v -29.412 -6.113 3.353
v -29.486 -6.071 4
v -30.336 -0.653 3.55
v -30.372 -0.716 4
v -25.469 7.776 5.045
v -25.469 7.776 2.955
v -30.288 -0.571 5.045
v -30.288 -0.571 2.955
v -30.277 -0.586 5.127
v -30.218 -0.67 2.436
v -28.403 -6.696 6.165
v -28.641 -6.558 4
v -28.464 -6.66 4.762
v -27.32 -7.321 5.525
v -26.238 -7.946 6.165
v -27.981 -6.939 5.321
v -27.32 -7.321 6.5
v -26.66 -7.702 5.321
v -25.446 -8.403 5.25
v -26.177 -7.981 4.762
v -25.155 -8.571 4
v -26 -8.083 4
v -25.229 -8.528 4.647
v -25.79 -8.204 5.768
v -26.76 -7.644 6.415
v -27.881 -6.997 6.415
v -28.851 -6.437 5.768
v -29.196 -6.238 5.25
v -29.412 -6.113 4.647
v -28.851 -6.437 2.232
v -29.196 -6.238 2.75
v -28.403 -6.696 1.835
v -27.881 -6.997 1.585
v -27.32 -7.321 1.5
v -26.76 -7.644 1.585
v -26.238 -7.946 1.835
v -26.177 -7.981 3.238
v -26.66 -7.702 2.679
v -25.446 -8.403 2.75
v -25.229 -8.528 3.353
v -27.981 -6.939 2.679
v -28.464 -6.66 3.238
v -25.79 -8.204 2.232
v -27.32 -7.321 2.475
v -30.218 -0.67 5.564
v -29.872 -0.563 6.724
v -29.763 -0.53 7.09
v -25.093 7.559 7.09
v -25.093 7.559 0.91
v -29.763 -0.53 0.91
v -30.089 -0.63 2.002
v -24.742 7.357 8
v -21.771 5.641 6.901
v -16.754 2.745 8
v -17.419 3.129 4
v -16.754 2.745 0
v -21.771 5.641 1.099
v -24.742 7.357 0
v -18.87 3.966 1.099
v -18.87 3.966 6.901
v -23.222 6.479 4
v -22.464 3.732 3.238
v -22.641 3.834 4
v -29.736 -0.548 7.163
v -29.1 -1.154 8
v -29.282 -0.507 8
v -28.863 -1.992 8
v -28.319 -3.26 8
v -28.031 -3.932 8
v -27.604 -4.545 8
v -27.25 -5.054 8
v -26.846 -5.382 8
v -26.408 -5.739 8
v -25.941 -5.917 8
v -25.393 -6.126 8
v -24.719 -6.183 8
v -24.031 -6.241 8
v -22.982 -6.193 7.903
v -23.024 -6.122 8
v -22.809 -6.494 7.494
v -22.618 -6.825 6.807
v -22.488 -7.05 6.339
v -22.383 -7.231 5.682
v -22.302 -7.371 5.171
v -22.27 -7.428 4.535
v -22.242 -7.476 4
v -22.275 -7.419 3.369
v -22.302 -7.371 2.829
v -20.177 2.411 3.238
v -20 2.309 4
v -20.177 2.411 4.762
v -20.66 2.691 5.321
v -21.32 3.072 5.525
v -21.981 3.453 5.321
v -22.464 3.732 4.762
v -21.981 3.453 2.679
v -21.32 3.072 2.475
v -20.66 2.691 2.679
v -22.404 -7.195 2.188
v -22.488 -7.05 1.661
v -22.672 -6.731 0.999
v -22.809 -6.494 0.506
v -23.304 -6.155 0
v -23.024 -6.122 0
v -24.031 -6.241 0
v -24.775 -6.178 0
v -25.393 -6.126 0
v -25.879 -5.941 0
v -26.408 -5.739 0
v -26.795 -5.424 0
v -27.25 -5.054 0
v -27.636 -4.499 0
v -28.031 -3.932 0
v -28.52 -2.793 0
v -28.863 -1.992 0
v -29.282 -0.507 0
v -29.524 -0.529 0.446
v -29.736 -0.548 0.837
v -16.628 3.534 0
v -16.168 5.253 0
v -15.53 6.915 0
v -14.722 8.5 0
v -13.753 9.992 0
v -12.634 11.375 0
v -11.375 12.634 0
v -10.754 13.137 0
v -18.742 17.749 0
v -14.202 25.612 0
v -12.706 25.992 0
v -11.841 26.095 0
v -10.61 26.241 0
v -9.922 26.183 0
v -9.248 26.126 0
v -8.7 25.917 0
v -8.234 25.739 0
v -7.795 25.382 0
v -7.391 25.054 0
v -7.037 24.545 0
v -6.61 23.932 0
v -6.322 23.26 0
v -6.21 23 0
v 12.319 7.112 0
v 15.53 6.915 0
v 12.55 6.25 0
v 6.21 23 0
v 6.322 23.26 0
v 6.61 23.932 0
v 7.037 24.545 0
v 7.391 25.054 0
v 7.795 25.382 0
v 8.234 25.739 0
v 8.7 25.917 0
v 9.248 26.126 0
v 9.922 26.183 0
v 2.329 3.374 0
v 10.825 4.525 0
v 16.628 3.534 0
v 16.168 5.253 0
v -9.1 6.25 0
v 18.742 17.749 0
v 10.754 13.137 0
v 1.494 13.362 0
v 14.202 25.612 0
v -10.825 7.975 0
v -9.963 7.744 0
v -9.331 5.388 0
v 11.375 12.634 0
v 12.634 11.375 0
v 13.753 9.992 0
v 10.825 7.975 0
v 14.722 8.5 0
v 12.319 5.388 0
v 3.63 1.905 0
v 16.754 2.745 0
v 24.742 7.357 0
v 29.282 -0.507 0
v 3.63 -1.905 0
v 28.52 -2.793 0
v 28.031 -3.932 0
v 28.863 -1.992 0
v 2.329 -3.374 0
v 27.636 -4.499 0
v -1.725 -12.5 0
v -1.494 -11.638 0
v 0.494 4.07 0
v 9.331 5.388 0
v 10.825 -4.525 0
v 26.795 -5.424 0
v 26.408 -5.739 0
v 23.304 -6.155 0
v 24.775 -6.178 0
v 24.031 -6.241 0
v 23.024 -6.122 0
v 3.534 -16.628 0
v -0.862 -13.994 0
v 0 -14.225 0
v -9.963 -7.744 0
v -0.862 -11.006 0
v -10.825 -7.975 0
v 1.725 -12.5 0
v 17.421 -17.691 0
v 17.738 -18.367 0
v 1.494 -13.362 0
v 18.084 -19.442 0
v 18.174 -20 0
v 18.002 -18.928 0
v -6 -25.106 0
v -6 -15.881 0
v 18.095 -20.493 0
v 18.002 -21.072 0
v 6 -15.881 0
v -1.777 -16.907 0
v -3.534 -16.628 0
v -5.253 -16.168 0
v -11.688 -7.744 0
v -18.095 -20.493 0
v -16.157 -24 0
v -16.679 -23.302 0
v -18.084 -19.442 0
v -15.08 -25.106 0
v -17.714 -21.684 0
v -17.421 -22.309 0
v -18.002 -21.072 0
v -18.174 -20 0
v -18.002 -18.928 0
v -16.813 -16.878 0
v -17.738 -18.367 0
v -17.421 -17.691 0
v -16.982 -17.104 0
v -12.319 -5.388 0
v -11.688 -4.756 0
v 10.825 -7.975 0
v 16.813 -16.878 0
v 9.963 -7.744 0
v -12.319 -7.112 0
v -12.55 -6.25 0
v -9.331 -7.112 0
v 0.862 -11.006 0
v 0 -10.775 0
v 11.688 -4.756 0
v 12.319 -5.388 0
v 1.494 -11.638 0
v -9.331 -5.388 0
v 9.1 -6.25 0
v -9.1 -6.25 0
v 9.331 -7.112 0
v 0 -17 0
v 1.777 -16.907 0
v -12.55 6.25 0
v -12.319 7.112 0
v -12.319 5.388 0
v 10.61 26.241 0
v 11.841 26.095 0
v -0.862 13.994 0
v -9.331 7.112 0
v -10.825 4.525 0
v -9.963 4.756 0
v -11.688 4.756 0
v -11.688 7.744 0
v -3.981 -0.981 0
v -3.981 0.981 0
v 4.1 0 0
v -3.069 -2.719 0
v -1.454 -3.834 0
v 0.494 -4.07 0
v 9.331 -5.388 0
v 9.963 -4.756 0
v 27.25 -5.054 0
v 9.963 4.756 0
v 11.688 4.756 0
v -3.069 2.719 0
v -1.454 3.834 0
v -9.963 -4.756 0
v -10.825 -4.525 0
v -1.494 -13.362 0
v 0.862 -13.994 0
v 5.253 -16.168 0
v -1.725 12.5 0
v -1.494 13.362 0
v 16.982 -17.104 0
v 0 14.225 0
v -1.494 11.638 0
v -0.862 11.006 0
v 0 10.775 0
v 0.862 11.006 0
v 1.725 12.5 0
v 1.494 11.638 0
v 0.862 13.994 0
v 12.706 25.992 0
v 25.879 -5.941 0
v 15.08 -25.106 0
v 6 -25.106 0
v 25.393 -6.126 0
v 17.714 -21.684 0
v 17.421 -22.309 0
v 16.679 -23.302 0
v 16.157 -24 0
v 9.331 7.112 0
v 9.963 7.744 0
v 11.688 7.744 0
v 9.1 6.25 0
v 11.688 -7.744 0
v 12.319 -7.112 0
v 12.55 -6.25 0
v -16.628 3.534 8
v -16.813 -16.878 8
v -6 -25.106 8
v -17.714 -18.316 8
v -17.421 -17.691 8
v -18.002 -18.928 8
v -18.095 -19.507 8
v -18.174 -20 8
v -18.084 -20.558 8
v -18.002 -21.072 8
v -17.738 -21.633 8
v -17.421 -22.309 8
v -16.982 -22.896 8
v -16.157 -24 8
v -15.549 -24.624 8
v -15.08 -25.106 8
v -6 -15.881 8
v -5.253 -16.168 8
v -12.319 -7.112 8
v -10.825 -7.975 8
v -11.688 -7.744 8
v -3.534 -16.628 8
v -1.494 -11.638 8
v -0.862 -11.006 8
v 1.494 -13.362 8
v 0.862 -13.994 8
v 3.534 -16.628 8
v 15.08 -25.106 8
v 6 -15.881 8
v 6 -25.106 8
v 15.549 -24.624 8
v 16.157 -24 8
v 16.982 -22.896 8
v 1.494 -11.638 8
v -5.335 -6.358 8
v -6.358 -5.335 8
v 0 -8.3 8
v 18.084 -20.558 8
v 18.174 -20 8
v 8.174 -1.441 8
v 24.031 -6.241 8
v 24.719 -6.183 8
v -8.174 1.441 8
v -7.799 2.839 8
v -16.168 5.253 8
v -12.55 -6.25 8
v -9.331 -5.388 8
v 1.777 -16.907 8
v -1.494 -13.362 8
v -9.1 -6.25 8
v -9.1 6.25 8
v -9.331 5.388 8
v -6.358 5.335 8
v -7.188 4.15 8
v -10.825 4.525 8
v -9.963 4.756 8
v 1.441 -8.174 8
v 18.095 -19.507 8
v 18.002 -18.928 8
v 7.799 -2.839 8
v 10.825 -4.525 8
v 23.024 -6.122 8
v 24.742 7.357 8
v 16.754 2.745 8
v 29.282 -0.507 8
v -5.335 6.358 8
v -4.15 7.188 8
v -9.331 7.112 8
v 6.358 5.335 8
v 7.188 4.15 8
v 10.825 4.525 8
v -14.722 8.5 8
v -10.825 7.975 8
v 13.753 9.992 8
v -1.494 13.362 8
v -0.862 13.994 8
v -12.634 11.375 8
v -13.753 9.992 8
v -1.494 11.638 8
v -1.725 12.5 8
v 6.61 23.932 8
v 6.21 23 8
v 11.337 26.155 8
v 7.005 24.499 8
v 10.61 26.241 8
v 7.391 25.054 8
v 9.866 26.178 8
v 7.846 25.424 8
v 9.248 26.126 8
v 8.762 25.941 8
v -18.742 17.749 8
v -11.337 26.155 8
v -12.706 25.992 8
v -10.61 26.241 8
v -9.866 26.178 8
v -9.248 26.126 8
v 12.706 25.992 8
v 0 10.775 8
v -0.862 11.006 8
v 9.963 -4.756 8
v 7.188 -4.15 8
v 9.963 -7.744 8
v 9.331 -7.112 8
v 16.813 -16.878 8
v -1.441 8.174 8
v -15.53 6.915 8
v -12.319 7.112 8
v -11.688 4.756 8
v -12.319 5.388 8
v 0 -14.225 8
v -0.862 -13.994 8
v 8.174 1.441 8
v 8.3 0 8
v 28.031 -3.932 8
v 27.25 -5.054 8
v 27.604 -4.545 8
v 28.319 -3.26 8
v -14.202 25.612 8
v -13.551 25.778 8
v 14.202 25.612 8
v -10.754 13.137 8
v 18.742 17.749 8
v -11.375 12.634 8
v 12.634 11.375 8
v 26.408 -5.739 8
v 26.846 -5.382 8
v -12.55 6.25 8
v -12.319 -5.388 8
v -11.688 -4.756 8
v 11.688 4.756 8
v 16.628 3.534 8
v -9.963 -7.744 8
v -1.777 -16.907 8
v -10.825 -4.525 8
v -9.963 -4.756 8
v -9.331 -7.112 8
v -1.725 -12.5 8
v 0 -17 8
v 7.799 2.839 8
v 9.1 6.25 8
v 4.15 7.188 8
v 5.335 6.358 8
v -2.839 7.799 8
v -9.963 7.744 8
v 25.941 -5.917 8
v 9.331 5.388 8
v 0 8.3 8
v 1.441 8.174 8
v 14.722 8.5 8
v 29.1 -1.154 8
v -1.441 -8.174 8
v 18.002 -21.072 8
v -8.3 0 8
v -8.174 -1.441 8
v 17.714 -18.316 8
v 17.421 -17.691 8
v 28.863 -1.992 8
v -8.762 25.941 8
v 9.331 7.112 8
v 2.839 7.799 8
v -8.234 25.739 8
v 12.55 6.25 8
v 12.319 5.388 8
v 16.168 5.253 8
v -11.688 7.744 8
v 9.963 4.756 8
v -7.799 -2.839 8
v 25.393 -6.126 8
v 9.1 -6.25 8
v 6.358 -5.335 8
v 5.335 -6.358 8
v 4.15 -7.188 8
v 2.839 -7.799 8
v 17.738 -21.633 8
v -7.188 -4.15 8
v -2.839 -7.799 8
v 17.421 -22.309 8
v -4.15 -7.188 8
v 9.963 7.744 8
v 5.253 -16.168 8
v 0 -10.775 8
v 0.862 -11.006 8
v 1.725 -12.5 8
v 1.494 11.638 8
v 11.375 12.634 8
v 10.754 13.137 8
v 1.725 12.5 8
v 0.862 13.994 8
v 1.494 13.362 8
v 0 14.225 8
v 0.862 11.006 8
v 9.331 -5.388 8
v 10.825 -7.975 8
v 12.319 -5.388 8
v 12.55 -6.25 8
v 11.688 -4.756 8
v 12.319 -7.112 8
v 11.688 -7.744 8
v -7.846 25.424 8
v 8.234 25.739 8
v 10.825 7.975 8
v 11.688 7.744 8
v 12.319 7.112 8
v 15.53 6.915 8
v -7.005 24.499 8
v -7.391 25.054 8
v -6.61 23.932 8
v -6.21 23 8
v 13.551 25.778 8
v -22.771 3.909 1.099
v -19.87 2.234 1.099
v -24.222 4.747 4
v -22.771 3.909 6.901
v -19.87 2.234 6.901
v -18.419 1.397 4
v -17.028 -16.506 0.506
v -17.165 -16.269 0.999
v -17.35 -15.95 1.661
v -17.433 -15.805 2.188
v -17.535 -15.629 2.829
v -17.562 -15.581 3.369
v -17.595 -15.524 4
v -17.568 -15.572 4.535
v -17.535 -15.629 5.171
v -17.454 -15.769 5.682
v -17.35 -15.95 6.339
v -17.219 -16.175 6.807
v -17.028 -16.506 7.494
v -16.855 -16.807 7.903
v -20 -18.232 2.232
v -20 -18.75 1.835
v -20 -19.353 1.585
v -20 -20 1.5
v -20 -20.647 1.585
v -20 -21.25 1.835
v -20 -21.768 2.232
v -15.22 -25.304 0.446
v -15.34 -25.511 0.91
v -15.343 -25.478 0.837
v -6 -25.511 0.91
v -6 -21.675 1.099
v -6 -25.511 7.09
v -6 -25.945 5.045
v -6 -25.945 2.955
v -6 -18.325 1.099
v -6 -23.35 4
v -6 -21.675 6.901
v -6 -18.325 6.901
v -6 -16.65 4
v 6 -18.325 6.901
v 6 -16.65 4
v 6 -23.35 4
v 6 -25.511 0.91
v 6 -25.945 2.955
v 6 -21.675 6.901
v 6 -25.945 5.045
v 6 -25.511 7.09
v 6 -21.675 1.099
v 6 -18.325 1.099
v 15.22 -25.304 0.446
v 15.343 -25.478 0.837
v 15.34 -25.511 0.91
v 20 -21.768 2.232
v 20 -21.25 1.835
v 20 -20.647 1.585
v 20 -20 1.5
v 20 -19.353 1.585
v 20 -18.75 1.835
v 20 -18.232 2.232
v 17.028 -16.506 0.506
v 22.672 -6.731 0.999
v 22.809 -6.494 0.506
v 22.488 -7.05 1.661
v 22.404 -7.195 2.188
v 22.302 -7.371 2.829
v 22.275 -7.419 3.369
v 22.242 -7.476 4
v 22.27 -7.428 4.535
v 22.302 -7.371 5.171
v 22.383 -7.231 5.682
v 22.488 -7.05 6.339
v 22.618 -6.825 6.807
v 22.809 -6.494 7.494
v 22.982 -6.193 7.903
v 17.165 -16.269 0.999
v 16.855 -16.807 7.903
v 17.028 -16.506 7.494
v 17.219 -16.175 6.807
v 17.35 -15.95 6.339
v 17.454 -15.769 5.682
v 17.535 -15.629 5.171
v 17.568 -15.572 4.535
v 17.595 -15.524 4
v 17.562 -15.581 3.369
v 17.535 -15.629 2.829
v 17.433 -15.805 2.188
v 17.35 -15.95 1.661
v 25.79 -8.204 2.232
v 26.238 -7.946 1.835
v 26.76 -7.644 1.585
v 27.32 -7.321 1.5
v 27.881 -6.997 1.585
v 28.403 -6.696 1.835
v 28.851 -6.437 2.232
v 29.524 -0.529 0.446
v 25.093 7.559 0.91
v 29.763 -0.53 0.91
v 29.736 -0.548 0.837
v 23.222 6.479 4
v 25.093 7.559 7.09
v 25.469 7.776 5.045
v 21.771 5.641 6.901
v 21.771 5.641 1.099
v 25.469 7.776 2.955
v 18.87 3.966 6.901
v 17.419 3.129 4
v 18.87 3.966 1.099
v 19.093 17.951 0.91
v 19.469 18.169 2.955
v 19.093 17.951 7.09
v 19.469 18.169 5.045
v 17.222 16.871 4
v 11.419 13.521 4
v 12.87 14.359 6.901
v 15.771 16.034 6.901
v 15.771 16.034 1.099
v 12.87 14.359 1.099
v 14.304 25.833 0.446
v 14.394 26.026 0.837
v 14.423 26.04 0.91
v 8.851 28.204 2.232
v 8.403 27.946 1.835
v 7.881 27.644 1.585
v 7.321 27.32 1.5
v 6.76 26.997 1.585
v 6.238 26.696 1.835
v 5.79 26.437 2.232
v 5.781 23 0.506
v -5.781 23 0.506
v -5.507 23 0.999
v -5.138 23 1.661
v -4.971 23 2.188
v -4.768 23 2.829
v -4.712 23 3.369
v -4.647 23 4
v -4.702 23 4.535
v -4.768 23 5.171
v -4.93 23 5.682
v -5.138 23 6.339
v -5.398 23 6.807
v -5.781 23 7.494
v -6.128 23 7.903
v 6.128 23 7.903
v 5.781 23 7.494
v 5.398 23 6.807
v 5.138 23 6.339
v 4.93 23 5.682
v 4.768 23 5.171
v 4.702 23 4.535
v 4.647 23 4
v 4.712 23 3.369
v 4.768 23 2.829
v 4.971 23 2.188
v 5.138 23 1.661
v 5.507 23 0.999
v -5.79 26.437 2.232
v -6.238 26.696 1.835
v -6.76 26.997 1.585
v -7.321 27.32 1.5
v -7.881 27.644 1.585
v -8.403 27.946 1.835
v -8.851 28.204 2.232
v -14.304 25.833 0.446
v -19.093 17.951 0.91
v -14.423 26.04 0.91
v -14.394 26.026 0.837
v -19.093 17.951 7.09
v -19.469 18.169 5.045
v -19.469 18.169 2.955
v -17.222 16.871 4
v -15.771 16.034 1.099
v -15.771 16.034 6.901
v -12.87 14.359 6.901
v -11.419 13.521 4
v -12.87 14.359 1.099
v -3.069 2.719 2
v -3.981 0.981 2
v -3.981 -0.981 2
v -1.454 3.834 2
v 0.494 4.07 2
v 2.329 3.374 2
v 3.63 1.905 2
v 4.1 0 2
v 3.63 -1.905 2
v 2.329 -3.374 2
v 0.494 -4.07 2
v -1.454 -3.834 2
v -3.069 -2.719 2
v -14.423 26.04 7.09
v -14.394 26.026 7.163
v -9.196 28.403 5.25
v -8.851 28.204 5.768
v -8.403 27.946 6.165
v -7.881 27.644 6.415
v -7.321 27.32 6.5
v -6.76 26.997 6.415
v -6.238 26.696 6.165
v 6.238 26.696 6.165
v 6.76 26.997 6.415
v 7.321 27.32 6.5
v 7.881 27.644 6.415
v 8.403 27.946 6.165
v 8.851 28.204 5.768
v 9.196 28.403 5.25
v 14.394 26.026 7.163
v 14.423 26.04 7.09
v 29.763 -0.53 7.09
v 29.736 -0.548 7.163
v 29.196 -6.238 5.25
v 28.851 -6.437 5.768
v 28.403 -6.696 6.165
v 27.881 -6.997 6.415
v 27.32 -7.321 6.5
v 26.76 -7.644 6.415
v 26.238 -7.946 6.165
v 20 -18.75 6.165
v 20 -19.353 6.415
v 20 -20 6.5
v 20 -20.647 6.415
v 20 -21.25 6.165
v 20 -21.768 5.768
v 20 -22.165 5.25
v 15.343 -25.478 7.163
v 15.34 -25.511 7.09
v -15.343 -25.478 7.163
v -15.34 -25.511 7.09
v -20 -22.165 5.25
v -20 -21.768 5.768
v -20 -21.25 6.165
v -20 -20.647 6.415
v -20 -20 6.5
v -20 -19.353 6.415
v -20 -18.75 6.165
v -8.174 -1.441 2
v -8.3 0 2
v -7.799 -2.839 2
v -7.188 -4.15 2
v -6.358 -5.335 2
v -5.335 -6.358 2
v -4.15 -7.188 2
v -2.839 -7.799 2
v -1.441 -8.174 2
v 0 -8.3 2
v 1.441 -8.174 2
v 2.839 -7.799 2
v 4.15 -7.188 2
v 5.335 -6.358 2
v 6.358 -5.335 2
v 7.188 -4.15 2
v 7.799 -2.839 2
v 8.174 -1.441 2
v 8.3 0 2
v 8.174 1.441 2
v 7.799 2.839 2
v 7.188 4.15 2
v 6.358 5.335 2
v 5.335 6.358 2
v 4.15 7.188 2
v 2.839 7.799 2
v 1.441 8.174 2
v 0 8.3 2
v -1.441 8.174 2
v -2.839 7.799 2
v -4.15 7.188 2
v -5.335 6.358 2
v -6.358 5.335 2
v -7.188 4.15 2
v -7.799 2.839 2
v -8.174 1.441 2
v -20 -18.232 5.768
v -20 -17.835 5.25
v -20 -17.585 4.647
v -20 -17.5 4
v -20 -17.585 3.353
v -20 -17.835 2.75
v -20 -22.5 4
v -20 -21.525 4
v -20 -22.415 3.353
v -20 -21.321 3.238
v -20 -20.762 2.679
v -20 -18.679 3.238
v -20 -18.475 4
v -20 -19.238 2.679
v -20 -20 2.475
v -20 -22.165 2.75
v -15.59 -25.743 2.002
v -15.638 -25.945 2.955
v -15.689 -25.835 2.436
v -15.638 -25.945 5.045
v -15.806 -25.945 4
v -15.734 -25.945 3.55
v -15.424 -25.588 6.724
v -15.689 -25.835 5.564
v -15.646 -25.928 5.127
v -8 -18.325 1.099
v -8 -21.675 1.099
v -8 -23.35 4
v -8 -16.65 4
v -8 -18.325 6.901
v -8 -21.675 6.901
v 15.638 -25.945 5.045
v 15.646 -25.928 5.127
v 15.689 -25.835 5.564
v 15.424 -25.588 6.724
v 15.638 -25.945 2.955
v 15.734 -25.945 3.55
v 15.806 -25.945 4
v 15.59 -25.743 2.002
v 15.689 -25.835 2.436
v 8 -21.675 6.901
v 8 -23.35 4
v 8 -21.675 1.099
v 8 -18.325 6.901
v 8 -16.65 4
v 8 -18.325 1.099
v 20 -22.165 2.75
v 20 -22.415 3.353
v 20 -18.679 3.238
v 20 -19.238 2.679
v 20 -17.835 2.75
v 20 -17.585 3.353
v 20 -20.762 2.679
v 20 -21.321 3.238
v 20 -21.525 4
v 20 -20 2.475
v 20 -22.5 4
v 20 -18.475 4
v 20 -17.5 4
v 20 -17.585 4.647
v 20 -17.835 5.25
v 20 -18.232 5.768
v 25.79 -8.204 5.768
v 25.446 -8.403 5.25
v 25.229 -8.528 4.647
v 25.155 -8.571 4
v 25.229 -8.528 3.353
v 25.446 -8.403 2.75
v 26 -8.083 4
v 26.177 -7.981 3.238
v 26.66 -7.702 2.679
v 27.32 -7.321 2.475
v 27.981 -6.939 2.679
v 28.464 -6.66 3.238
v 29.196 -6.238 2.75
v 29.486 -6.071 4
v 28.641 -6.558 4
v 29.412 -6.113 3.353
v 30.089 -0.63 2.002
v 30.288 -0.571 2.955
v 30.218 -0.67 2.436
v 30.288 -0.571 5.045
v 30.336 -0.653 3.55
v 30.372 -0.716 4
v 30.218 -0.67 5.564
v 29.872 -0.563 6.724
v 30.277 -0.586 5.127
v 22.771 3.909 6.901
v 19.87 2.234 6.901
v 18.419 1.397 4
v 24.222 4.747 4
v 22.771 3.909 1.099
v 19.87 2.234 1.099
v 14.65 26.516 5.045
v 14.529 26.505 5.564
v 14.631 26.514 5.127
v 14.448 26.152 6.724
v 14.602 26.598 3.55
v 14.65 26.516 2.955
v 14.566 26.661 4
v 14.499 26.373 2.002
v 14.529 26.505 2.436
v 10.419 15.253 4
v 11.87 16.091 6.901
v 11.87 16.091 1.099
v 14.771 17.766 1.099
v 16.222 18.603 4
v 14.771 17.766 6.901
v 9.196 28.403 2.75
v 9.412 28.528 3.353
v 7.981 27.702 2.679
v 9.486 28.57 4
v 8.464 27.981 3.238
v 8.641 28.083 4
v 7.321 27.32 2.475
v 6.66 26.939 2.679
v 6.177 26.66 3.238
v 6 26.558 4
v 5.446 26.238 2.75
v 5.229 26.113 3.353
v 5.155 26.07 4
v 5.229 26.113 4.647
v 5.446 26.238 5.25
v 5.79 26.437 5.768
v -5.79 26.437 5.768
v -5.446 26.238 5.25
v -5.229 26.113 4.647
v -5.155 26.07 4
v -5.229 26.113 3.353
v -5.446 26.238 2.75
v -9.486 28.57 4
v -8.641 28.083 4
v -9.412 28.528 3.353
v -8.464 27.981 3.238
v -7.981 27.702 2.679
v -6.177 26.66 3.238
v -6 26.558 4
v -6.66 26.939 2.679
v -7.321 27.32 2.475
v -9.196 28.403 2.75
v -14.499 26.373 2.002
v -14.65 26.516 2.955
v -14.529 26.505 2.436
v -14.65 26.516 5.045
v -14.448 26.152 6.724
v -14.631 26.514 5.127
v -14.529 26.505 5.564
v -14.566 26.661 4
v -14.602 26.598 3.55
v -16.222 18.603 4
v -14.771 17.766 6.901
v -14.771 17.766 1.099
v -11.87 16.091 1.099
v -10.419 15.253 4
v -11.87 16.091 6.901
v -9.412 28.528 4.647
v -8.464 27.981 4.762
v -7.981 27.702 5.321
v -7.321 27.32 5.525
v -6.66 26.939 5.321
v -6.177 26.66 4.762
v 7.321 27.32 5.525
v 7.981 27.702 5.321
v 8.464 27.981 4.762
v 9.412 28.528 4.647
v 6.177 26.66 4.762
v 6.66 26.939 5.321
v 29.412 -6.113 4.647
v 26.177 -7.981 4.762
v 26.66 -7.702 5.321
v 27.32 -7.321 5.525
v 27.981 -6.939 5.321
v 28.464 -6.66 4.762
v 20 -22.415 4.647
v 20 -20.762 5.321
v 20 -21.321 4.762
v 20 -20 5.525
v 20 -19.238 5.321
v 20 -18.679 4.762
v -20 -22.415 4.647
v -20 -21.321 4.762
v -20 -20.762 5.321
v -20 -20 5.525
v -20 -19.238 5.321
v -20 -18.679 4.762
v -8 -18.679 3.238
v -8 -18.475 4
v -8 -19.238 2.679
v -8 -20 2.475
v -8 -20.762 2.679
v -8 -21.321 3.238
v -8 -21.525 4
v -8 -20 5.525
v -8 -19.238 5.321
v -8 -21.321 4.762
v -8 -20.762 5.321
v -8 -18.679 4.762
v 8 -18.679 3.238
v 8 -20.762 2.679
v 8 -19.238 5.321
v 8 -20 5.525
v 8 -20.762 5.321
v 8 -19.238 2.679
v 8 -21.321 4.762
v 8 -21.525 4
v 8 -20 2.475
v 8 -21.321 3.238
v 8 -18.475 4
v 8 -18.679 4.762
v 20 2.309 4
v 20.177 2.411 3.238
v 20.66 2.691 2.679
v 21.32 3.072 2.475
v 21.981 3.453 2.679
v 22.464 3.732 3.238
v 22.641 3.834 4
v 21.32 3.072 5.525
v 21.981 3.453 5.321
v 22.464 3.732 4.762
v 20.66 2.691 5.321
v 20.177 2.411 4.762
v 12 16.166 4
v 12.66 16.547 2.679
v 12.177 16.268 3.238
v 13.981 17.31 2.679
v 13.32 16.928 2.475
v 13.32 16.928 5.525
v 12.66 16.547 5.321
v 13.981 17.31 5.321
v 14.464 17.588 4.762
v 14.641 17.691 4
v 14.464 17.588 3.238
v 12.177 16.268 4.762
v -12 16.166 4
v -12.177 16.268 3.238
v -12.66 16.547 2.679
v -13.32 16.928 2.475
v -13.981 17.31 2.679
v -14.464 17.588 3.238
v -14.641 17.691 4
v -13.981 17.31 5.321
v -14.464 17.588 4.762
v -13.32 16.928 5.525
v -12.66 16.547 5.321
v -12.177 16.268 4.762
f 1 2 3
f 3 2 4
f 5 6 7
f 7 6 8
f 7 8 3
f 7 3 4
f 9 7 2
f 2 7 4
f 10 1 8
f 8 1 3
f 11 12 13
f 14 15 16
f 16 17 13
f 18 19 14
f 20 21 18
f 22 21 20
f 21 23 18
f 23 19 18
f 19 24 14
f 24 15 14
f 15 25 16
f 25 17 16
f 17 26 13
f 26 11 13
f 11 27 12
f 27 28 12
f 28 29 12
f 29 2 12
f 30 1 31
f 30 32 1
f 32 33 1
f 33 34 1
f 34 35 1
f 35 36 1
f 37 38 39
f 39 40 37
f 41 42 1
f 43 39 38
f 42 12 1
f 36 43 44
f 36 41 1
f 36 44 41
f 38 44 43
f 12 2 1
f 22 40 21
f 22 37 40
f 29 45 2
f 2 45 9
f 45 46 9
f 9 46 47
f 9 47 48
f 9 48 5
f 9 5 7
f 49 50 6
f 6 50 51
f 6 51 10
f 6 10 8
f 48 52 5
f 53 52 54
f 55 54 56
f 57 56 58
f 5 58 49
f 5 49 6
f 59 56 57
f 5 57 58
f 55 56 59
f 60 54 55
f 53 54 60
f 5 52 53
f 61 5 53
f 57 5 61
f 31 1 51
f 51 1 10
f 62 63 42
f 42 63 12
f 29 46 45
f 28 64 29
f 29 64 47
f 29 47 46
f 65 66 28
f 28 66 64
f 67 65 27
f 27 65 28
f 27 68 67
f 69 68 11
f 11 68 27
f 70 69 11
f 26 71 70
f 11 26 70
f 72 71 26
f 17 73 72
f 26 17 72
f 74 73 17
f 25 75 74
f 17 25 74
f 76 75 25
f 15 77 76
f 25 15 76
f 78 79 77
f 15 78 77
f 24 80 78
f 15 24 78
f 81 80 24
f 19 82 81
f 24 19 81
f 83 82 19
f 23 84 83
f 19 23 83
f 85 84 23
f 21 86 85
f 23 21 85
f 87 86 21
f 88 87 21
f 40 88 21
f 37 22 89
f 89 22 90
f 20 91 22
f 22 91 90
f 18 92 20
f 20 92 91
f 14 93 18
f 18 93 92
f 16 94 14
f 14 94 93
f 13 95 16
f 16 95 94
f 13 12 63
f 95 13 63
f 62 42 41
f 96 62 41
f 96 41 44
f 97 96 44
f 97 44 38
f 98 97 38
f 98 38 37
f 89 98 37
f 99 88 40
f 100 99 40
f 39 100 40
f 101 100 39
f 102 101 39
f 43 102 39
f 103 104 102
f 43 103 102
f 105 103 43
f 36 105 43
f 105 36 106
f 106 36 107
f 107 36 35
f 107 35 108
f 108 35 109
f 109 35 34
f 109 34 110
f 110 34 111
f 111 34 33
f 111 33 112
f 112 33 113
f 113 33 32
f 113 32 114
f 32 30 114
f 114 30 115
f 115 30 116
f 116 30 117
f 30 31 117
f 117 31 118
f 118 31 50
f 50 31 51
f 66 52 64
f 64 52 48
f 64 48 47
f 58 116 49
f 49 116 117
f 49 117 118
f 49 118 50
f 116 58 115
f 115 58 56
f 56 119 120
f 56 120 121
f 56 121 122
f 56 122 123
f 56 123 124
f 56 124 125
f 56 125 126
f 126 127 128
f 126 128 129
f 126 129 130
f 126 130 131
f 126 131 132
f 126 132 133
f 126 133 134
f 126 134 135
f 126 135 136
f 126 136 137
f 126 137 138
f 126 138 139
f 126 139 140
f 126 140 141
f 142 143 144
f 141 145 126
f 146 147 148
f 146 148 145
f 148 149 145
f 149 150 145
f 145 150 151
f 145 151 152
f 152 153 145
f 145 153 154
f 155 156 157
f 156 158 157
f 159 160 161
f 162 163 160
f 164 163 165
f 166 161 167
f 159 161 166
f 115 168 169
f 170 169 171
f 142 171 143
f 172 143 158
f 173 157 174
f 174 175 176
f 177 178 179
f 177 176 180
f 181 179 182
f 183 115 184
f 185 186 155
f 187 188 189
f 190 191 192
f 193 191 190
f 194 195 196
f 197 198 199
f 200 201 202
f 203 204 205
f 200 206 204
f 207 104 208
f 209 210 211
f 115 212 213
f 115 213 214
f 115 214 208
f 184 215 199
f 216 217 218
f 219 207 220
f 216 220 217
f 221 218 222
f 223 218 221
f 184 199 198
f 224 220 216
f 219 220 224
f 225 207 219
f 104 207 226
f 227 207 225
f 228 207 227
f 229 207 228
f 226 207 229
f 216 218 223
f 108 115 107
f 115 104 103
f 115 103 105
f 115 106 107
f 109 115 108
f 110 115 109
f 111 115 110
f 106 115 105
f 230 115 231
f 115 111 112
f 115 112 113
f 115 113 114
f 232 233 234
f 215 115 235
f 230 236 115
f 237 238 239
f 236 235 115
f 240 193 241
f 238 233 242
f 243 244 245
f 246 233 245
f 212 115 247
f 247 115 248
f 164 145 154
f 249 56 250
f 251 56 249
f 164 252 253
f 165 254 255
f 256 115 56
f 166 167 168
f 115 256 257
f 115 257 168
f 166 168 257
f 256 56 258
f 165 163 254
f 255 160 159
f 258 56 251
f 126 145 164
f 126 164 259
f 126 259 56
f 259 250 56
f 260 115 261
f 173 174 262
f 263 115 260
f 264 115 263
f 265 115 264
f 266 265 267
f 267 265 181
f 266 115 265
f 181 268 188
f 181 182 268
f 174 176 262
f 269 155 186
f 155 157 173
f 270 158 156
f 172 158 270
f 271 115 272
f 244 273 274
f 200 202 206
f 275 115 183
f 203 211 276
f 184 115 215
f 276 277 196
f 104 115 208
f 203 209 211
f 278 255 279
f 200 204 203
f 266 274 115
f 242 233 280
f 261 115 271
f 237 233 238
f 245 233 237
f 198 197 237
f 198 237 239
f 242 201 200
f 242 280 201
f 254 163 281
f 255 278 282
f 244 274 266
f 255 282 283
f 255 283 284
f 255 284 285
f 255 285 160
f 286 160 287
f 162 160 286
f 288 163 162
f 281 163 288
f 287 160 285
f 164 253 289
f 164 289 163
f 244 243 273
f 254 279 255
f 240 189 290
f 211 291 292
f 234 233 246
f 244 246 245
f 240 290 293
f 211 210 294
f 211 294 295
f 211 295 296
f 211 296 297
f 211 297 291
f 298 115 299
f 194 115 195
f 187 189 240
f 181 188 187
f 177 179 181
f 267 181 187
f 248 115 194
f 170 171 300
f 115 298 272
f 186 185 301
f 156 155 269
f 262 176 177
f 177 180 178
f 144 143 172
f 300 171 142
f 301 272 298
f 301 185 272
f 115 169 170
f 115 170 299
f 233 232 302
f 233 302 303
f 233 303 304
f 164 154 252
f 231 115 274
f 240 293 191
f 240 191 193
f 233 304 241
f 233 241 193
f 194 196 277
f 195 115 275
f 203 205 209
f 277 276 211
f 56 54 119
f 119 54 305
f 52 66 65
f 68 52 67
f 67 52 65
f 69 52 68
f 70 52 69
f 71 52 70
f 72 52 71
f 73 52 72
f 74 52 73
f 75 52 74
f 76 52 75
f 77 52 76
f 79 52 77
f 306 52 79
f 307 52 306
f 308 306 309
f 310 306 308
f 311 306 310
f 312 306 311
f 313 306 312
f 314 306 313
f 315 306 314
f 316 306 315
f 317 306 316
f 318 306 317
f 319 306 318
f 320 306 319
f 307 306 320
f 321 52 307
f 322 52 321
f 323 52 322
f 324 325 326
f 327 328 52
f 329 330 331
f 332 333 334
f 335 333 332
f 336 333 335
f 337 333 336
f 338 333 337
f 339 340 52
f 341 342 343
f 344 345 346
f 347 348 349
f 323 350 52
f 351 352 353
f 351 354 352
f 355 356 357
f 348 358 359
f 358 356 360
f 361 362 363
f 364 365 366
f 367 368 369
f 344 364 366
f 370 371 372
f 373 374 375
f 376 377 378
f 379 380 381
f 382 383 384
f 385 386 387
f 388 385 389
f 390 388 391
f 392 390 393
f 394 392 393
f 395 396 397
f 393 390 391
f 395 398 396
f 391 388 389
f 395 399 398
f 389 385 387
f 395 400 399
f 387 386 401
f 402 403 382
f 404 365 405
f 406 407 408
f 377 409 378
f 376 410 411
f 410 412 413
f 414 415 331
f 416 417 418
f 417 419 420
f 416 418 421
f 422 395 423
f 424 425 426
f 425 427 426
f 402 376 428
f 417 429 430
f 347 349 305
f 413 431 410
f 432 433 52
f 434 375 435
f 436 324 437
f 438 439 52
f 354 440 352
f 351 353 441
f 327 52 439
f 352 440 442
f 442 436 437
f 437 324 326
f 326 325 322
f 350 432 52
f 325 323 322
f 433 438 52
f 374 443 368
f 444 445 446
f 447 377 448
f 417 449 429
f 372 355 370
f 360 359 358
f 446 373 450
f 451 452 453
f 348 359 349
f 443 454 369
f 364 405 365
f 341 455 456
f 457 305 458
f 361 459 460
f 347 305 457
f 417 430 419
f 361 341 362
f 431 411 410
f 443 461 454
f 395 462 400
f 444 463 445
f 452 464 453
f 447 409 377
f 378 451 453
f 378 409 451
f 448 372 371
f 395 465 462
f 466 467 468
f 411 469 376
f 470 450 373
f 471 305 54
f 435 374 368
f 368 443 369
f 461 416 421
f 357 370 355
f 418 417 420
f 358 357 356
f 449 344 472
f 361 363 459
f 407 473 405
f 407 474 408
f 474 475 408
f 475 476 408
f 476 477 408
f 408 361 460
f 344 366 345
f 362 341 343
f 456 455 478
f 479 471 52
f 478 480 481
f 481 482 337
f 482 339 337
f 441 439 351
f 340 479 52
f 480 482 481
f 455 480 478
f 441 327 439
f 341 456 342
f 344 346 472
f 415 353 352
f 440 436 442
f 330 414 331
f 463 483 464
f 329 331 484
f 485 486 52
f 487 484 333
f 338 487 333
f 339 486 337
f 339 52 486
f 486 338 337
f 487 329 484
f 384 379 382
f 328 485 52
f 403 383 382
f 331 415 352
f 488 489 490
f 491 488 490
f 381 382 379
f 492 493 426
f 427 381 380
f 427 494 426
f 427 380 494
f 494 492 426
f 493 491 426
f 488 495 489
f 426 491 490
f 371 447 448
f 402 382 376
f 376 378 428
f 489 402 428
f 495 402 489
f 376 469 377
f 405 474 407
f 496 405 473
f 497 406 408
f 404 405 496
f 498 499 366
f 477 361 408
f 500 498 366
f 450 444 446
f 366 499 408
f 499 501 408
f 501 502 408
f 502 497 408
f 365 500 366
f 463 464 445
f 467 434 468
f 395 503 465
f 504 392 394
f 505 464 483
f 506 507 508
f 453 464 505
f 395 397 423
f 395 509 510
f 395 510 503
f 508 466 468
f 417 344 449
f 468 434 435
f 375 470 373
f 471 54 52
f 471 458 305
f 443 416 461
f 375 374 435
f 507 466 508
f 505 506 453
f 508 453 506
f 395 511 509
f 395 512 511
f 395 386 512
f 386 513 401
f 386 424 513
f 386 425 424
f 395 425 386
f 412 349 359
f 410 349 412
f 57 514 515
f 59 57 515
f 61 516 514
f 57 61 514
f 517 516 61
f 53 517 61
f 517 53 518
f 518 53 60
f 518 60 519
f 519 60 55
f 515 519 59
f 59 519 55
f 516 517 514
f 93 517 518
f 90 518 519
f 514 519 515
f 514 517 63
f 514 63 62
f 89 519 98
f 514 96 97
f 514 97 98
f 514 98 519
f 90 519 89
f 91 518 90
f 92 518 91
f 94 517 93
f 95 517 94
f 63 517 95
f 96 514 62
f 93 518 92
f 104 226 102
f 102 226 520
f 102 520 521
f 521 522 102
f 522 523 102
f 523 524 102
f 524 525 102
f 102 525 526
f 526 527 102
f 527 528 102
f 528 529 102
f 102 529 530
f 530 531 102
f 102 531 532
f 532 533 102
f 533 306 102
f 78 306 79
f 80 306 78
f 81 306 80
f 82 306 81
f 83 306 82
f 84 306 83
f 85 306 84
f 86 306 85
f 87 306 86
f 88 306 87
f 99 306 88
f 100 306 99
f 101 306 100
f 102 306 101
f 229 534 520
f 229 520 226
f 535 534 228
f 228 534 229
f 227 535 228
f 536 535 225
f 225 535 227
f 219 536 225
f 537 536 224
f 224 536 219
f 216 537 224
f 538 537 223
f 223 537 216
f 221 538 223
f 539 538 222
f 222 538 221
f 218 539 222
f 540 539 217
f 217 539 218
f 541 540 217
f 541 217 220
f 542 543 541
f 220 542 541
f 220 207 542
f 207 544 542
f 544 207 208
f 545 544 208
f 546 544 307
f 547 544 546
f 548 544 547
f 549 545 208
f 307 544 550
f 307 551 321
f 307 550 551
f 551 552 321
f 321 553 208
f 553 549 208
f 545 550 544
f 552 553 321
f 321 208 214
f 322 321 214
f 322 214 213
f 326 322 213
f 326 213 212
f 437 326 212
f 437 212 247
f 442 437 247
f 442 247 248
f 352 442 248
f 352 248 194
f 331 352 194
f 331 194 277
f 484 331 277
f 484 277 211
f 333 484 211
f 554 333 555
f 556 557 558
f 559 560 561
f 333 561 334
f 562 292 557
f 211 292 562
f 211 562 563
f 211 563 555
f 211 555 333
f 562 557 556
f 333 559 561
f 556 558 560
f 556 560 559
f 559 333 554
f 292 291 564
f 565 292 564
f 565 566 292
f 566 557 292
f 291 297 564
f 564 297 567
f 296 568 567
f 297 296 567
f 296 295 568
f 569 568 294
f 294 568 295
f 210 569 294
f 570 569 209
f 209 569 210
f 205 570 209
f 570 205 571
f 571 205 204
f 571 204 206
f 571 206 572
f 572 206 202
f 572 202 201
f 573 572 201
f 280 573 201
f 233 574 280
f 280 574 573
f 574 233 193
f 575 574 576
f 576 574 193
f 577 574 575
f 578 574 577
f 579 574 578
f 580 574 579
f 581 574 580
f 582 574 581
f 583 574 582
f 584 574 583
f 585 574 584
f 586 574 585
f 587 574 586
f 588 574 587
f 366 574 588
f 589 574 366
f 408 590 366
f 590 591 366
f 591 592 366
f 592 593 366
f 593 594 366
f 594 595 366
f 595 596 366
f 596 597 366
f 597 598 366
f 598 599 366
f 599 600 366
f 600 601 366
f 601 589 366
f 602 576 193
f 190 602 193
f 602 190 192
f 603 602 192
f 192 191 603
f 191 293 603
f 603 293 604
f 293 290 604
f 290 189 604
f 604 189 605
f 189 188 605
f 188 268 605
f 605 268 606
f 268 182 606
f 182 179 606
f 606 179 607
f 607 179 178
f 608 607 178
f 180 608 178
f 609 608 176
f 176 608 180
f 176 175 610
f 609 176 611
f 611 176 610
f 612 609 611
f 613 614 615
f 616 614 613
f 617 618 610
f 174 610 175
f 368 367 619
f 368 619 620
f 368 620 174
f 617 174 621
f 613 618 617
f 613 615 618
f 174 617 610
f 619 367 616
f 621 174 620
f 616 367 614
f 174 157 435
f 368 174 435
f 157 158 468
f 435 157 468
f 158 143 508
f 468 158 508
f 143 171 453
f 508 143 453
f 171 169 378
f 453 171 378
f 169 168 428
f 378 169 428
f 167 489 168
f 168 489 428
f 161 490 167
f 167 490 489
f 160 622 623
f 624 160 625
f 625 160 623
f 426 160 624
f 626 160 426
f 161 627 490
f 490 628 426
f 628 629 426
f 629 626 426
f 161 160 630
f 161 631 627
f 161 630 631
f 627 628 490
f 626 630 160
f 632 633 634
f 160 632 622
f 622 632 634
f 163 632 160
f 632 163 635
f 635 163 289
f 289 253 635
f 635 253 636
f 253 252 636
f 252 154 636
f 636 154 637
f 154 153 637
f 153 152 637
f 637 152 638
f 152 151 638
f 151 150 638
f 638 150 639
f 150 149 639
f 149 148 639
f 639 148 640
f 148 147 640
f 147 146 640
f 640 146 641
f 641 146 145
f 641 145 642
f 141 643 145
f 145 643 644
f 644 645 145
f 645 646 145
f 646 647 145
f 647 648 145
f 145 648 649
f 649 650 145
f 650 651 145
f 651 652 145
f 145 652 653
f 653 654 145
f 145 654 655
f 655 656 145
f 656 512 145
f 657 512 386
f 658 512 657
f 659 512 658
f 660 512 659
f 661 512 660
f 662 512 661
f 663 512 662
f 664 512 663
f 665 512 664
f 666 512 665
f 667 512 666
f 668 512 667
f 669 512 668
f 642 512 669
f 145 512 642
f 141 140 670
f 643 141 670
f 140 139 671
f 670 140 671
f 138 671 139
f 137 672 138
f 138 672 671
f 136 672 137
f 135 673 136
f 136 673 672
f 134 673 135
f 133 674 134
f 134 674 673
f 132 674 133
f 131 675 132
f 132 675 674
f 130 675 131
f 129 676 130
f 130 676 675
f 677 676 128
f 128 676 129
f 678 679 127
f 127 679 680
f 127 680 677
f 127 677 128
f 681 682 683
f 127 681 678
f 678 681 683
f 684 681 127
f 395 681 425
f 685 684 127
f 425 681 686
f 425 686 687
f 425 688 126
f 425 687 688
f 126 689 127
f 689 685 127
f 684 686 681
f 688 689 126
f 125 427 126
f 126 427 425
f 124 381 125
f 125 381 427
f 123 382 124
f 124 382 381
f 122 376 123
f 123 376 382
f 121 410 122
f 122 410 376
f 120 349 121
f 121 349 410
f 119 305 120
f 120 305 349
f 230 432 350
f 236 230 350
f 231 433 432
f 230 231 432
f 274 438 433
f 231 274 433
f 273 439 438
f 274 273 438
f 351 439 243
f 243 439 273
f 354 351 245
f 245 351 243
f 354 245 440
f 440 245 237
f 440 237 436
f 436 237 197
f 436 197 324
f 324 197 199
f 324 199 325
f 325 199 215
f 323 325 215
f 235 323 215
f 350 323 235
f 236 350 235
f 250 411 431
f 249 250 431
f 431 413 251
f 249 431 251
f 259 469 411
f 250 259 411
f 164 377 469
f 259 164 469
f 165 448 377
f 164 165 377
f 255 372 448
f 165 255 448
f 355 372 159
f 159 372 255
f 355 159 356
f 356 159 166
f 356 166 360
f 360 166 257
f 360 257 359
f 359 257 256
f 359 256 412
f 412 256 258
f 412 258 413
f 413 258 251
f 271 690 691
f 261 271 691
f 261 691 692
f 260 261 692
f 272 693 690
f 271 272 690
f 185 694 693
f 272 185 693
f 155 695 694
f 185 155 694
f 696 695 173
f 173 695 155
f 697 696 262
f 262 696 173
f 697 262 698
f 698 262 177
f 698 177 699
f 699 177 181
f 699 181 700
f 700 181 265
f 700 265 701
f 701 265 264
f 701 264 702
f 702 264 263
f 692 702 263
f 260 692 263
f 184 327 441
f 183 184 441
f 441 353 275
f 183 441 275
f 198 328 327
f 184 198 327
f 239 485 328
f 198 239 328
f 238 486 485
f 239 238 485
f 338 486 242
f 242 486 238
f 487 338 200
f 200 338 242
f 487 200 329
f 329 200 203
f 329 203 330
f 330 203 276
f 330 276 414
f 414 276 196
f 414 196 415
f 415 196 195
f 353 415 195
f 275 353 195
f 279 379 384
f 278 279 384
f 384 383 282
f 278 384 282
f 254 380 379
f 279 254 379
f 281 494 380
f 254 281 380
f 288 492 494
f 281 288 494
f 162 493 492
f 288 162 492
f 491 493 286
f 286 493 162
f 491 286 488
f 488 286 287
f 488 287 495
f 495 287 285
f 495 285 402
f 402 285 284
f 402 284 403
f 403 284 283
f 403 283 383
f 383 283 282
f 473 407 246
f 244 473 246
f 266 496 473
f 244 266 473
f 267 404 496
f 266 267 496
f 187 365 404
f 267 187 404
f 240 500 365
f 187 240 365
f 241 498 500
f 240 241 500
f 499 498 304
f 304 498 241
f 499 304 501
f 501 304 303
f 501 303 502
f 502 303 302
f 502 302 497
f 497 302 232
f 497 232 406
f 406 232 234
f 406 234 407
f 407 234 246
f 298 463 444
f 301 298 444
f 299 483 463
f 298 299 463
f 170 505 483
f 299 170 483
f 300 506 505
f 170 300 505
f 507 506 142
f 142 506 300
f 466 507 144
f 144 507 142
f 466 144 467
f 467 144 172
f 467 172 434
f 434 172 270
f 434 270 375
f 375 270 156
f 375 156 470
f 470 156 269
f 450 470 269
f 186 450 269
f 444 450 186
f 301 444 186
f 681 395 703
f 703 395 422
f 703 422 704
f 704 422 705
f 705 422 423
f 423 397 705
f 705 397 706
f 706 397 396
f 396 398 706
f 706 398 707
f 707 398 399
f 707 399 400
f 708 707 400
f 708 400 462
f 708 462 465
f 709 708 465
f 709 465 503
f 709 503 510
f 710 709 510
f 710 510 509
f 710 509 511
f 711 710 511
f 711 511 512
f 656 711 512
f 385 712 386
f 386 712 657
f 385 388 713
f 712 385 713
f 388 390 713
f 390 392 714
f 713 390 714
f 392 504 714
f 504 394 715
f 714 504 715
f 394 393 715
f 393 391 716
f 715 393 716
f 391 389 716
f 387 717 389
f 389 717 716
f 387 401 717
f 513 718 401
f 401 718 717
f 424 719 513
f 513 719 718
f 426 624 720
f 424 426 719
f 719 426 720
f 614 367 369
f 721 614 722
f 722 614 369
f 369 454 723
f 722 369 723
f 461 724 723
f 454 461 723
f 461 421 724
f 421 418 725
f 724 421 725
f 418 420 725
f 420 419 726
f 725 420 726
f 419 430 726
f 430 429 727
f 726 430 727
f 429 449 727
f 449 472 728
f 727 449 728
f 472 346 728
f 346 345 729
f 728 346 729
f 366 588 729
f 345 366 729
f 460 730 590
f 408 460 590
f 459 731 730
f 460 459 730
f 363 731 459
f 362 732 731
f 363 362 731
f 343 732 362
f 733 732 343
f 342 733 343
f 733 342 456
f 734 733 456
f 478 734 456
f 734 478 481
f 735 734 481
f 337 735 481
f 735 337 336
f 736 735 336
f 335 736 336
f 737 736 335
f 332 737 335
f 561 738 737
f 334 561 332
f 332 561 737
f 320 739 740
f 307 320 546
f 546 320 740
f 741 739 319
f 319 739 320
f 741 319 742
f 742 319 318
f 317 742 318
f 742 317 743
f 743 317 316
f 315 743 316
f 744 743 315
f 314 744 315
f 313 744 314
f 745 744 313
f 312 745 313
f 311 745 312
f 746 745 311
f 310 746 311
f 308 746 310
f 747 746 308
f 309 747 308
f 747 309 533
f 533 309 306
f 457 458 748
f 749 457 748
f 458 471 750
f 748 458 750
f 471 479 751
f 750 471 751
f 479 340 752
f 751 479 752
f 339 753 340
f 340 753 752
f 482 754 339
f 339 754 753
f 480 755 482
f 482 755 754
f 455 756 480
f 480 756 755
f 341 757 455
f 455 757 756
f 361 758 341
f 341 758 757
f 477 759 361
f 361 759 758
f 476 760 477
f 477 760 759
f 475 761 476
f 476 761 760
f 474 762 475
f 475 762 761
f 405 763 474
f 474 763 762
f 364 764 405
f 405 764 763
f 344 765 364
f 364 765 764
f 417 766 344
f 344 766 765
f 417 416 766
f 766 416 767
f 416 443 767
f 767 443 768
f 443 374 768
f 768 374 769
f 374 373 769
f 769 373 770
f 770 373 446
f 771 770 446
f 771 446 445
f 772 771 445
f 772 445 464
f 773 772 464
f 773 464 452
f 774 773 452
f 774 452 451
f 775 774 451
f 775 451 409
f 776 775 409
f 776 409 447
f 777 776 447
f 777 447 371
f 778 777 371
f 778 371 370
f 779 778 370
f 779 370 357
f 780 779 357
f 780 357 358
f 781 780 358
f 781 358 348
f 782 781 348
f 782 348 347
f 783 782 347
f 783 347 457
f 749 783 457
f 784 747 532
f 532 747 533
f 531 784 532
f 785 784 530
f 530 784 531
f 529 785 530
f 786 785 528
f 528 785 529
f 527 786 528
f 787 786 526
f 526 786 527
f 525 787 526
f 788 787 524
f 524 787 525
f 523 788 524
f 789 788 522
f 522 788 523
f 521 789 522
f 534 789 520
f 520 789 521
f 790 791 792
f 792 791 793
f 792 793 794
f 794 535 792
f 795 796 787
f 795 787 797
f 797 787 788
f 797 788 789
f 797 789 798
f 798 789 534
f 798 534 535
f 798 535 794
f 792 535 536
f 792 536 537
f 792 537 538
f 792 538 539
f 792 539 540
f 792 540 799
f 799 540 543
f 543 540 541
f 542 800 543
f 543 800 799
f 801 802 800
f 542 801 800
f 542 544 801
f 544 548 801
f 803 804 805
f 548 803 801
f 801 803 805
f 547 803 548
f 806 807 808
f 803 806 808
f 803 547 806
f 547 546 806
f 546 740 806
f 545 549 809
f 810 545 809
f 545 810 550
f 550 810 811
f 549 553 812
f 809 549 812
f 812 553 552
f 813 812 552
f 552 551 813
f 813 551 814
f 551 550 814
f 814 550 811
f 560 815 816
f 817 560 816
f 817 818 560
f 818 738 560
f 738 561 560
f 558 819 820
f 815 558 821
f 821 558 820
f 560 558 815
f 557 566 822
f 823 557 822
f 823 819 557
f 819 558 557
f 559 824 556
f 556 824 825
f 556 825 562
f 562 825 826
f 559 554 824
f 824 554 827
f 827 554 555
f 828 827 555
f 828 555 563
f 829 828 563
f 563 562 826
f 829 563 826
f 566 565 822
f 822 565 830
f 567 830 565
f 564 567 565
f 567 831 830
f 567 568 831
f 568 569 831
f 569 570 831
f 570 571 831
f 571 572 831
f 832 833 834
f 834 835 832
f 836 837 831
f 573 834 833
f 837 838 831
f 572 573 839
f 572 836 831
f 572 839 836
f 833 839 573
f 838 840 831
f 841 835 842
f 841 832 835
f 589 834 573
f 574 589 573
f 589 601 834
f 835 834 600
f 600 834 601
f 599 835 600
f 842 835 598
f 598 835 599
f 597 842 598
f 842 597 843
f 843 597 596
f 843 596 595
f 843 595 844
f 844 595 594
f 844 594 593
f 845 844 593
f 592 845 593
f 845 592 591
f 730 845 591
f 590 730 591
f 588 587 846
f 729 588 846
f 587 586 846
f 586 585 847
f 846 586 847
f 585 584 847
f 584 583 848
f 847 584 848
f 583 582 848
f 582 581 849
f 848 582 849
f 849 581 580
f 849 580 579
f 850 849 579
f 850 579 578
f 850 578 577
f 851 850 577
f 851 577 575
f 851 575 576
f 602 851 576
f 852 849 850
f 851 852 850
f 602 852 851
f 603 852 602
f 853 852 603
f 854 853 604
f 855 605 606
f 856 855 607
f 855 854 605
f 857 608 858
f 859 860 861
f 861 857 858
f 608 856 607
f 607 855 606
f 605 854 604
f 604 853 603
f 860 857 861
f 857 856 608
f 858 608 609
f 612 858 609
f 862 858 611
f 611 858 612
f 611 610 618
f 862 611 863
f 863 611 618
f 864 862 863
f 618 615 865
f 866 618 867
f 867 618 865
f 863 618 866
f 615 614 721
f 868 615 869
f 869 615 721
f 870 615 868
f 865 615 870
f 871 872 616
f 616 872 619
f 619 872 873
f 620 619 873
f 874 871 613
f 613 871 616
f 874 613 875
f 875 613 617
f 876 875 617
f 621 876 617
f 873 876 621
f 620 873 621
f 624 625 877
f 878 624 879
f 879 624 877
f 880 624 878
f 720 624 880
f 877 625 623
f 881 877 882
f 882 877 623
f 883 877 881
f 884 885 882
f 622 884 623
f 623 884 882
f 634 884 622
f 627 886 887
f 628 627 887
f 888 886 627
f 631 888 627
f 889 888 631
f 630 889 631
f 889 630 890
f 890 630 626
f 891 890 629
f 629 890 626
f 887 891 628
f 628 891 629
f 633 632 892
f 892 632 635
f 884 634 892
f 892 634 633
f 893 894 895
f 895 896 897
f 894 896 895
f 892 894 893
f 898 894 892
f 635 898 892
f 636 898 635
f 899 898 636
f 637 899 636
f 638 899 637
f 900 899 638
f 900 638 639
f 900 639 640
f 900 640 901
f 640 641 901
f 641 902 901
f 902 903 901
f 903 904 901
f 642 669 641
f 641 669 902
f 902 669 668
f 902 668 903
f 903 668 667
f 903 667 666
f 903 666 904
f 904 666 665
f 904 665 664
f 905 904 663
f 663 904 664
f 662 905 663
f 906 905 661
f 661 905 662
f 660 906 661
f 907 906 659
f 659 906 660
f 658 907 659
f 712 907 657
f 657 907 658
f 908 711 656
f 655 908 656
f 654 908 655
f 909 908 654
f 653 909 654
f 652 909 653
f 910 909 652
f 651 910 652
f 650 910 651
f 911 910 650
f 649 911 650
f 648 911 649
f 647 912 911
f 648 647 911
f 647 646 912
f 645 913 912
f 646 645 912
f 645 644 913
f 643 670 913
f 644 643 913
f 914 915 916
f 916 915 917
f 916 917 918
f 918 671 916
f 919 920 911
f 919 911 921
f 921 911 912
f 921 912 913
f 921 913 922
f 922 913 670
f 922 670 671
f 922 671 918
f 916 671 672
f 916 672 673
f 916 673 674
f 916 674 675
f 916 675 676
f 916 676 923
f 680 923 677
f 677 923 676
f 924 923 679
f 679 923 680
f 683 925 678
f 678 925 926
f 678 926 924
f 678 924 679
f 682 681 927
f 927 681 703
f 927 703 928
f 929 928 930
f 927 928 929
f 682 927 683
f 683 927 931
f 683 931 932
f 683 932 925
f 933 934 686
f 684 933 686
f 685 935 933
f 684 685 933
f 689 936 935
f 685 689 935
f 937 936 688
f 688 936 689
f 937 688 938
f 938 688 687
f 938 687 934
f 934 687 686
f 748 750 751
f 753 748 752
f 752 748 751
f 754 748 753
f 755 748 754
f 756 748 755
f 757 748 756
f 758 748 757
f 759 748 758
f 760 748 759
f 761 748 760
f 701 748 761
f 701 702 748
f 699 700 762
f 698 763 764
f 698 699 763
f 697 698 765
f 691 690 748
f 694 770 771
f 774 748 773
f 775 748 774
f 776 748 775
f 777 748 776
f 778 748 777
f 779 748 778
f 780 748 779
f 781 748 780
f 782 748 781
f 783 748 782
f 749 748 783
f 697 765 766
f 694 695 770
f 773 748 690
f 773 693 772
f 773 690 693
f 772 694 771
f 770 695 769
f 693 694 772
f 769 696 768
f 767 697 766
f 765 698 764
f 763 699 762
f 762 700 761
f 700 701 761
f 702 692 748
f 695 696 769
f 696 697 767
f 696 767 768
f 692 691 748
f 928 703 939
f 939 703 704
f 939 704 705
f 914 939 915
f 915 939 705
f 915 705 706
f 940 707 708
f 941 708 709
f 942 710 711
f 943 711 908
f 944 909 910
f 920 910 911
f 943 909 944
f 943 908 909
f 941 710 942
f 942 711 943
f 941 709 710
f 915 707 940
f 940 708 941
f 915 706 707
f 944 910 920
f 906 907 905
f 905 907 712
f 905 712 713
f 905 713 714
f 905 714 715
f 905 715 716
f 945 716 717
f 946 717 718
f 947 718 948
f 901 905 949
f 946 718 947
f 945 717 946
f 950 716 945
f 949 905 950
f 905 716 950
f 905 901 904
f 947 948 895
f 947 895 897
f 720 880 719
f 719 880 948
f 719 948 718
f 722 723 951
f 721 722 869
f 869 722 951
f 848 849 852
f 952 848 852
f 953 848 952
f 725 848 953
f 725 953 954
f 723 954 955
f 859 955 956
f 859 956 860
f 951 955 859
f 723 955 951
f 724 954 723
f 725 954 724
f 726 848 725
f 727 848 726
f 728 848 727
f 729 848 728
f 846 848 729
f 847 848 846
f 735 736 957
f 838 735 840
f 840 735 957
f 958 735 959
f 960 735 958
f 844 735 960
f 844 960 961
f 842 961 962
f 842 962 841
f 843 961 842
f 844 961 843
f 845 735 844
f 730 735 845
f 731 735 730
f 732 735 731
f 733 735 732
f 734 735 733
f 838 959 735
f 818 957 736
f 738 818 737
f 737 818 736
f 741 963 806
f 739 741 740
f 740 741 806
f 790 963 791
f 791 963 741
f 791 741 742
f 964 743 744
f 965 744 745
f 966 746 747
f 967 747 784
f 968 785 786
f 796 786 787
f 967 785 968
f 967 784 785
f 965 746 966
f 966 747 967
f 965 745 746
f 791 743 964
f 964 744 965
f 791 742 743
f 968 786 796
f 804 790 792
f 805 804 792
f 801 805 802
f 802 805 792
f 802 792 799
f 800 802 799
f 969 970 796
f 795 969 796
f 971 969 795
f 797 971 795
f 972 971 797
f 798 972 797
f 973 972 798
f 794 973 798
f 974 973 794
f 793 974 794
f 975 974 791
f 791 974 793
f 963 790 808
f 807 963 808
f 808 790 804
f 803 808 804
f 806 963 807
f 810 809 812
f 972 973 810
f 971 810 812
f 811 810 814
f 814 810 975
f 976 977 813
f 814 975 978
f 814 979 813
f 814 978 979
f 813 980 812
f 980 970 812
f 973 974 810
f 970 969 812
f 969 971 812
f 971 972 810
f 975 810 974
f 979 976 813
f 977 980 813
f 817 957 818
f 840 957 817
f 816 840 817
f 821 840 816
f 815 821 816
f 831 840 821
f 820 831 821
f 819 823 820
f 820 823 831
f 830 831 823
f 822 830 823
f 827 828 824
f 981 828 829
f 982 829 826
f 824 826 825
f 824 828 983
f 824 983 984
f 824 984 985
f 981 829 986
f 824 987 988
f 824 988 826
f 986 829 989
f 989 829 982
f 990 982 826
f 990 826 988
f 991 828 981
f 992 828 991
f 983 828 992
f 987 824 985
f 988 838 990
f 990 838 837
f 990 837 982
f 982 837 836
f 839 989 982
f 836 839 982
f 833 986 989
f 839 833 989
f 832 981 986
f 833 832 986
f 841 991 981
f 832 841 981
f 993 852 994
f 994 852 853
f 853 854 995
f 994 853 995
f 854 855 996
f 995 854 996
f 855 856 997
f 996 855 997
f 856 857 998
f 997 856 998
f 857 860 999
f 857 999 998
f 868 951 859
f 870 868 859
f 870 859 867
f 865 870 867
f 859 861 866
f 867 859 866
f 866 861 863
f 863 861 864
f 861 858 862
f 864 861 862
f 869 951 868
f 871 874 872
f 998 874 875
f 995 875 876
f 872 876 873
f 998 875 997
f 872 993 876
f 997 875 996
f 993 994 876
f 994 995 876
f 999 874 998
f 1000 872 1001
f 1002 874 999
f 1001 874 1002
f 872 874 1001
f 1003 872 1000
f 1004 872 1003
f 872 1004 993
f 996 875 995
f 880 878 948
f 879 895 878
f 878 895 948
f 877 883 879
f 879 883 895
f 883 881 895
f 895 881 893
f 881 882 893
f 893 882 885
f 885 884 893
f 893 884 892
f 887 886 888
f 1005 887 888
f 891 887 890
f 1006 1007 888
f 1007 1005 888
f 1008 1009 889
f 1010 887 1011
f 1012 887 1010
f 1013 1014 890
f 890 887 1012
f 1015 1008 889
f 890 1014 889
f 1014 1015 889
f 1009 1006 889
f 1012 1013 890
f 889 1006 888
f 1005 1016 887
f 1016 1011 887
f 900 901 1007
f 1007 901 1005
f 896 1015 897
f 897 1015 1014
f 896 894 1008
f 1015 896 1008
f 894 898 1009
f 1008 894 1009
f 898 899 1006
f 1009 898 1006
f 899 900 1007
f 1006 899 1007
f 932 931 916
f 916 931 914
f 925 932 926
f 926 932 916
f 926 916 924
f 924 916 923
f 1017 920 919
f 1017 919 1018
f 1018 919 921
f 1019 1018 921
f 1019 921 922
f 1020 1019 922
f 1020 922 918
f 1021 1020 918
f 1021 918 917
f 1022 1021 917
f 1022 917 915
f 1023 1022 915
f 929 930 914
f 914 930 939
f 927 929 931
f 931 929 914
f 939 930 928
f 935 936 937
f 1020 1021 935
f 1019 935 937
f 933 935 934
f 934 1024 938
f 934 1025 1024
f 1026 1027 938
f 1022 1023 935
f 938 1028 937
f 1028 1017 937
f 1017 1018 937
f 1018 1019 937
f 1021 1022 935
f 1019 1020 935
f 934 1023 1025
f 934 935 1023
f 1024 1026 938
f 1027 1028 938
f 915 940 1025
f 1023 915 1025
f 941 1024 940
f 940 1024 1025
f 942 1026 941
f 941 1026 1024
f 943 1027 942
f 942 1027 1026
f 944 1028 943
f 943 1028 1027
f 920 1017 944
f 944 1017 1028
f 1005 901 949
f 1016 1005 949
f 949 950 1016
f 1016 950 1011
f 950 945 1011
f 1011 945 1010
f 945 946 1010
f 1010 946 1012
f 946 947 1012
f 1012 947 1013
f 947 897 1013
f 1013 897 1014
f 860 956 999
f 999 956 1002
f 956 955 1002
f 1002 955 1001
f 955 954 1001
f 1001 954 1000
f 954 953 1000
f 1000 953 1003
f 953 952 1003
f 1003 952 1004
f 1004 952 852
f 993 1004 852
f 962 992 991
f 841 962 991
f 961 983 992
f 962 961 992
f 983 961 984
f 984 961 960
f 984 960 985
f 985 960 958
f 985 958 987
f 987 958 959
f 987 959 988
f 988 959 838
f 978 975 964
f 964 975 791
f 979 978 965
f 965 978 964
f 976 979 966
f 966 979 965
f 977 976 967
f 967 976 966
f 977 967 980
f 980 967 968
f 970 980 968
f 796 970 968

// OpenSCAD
// file: configuration.scad
// Increase this if your slicer or printer make holes too tight.
extra_radius = 0.1;

// OD = outside diameter, corner to corner.
m3_nut_od = 6.1;
m3_nut_radius = m3_nut_od/2 + 0.2 + extra_radius;
m3_washer_radius = 3.5 + extra_radius;


// OD = outside diameter, corner to corner.
m3_nut_od = 6.1;
m3_nut_radius = m3_nut_od/2 + 0.2 + extra_radius;
m3_washer_radius = 3.5 + extra_radius;


// Major diameter of metric 3mm thread.
m3_major = 2.85;
m3_radius = m3_major/2 + extra_radius;
m3_wide_radius = m3_major/2 + extra_radius + 0.2;

// NEMA17 stepper motors.
motor_shaft_diameter = 5;
motor_shaft_radius = motor_shaft_diameter/2 + extra_radius;

// Frame brackets. M3x8mm screws work best with 3.6 mm brackets.
thickness = 3.6;

// OpenBeam or Misumi. Currently only 15x15 mm, but there is a plan
// to make models more parametric and allow 20x20 mm in the future.
extrusion = 15;

// Placement for the NEMA17 stepper motors.
motor_offset = 44;
motor_length = 47;
// main file
include <configuration.scad>;

separation = 40;  // Distance between ball joint mounting faces.
offset = 20;  // Same as DELTA_EFFECTOR_OFFSET in Marlin.
mount_radius = 12.5;  // Hotend mounting screws, standard would be 25mm.
hotend_radius = 8.3;  // Hole for the hotend (J-Head diameter is 16mm).
//change to 2mm for taobao
push_fit_height = 2;  // Length of brass threaded into printed plastic.
height = 8;
cone_r1 = 2.5;
cone_r2 = 14;

module effector() {
  difference() {
    union() {
      cylinder(r=offset-3, h=height, center=true, $fn=60);
      for (a = [60:120:359]) rotate([0, 0, a]) {
	rotate([0, 0, 30]) translate([offset-2, 0, 0])
	  cube([10, 13, height], center=true);
	for (s = [-1, 1]) scale([s, 1, 1]) {
	  translate([0, offset, 0]) difference() {
	    intersection() {
	      cube([separation, 40, height], center=true);
	      translate([0, -4, 0]) rotate([0, 90,  0])
		cylinder(r=10, h=separation, center=true);
	      translate([separation/2-7, 0, 0]) rotate([0, 90, 0])
		cylinder(r1=cone_r2, r2=cone_r1, h=14, center=true, $fn=24);
	    }
	    rotate([0, 90, 0])
	      cylinder(r=m3_radius, h=separation+1, center=true, $fn=12);
	    rotate([90, 0, 90])
	      cylinder(r=m3_nut_radius, h=separation-24, center=true, $fn=6);
	  }
        }
      }
    }
    translate([0, 0, push_fit_height-height/2])
      cylinder(r=hotend_radius, h=height, $fn=36);
    //change to m6_internal for j-head from taobao
    //translate([0, 0, -6]) # import("m6_internal.stl");
		translate([0, 0, -6]) 
			 cylinder(r=4.1, h=4);
    for (a = [0:60:359]) rotate([0, 0, a]) {
      translate([0, mount_radius, 0])
	cylinder(r=m3_wide_radius, h=2*height, center=true, $fn=12);
    }
  }
}

translate([0, 0, height/2]) effector();
